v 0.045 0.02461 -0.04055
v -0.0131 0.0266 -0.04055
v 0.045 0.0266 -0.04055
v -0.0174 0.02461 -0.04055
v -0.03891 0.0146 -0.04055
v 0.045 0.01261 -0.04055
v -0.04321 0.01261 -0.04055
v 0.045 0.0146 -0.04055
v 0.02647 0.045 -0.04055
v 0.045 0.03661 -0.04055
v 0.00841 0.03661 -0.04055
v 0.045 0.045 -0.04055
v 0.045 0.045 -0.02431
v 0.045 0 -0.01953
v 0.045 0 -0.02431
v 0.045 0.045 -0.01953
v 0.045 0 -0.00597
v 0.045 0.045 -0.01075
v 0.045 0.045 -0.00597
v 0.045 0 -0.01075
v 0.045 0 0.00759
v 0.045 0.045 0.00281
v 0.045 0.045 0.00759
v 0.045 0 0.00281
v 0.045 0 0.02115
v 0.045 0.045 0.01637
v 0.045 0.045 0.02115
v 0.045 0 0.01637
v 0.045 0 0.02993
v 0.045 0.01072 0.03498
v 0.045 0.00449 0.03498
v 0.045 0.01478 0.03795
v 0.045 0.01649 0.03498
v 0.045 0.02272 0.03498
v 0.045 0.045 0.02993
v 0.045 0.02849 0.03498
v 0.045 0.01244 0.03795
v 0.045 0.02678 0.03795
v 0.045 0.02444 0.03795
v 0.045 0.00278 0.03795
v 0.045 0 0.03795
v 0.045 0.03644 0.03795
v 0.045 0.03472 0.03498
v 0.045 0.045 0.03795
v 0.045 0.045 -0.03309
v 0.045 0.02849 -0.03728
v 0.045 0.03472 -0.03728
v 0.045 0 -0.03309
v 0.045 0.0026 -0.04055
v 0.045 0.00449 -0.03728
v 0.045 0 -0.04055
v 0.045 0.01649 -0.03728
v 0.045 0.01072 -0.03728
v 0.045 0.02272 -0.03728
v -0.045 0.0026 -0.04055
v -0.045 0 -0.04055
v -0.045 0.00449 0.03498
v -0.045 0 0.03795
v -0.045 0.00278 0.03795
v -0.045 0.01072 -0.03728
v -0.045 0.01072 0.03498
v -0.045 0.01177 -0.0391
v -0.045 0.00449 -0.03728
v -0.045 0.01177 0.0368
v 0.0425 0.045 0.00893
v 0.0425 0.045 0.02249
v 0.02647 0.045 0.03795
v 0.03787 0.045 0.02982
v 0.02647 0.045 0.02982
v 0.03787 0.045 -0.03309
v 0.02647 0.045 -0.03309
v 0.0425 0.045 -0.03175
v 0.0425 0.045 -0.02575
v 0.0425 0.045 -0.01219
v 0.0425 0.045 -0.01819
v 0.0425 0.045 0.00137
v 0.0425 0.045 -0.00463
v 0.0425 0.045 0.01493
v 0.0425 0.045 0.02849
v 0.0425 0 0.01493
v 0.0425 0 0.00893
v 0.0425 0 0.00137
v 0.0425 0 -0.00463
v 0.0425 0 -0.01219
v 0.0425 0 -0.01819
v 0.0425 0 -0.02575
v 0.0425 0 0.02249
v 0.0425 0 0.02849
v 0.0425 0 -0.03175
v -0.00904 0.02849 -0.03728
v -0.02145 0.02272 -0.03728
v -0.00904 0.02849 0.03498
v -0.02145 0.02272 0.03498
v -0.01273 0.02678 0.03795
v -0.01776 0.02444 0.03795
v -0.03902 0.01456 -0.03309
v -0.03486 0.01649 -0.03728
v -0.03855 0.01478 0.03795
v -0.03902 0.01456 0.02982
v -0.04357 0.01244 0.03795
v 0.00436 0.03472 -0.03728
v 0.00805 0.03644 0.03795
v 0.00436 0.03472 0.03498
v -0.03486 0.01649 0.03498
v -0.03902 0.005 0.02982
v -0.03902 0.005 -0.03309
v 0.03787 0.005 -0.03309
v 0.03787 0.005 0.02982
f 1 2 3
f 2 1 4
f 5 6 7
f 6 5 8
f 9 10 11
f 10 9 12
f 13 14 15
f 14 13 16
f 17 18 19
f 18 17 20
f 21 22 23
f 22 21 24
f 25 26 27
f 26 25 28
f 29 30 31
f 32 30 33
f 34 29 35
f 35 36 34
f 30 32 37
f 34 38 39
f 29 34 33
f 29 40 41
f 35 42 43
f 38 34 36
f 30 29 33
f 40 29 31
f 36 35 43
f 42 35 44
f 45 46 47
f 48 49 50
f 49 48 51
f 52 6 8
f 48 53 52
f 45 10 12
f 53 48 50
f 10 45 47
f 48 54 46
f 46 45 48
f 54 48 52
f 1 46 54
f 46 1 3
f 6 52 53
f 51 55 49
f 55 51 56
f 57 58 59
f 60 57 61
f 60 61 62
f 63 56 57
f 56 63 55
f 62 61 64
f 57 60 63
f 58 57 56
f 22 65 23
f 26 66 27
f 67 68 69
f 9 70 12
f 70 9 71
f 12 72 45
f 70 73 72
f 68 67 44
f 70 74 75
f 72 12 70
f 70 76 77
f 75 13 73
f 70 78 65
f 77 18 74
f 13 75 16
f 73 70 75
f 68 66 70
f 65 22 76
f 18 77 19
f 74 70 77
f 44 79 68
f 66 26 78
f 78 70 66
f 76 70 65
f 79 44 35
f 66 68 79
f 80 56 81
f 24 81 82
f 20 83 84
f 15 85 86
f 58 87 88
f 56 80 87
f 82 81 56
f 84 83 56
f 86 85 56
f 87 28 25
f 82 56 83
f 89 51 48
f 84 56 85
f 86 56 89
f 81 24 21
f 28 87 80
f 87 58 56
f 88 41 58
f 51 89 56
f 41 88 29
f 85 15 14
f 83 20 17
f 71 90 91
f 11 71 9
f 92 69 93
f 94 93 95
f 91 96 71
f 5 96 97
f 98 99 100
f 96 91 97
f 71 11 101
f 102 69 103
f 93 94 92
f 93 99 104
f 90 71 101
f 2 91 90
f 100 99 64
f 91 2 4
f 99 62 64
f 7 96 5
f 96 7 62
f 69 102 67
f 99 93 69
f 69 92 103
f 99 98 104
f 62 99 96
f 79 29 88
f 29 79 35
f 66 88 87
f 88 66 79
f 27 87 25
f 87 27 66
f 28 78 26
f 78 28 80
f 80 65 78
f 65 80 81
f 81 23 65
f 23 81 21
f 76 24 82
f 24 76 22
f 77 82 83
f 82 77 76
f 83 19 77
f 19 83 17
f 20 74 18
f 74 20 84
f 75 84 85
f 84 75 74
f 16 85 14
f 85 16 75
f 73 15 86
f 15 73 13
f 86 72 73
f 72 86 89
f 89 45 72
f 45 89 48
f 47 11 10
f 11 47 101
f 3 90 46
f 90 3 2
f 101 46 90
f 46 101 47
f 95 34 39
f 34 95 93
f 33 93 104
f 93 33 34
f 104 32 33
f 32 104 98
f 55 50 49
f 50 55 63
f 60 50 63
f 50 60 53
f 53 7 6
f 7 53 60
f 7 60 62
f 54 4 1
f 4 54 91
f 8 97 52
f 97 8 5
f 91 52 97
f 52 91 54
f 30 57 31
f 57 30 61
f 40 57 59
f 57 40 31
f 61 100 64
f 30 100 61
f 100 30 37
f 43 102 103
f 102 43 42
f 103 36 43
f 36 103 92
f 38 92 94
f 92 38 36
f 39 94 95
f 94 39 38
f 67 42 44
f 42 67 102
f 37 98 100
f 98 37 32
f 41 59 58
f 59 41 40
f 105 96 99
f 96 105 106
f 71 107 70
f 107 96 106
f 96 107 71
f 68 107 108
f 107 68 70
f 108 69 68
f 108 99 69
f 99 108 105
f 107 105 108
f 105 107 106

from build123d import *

# Parameters (mm, degrees)
SKETCH3_W           = 0.09
SKETCH3_H           = 0.0810914
BOSS_EXTRUDE2_DEPTH = 0.045
SKETCH4_W           = 0.076885995
SKETCH4_H           = 0.062907989
CUT_EXTRUDE2_DEPTH  = 0.04
CUT_EXTRUDE3_DEPTH  = 0.085
CUT_EXTRUDE5_DEPTH  = 0.045
CUT_EXTRUDE6_DEPTH  = 0.095
SKETCH10_W          = 0.00259893
SKETCH10_H          = 0.045
CUT_EXTRUDE7_DEPTH  = 0.095


with BuildPart() as part:
    # Sketch3 → Boss-Extrude2 (new body)
    with BuildSketch(Plane(origin=(0, 0, 0), x_dir=(1, 0, 0), z_dir=(0, 1, 0))):
        Rectangle(SKETCH3_W, SKETCH3_H)
    extrude(amount=BOSS_EXTRUDE2_DEPTH)

    # Sketch4 → Cut-Extrude2 (cut)
    with BuildSketch(Plane(origin=(0, 0.045, 0), x_dir=(1, 0, 0), z_dir=(0, 1, 0))):
        with Locations((-0.000573781, 0.00163106)):
            Rectangle(SKETCH4_W, SKETCH4_H)
    extrude(amount=-CUT_EXTRUDE2_DEPTH, mode=Mode.SUBTRACT)

    # Sketch5 → Cut-Extrude3 (cut)
    with BuildSketch(Plane(origin=(0, 0, -0.0405457), x_dir=(-1, 0, 0), z_dir=(0, 0, -1))):
        Polygon((-0.026465748, 0.045), (0.045, 0.045), (0.045, 0.011774754), align=None)
    extrude(amount=-CUT_EXTRUDE3_DEPTH, mode=Mode.SUBTRACT)

    # Sketch6 → Cut-Extrude5 (cut)
    with BuildSketch(Plane(origin=(0, 0.045, 0), x_dir=(1, 0, 0), z_dir=(0, 1, 0))):
        Polygon((0.045, 0.033085055), (0.0425, 0.031749464), (0.0425, 0.025749464), (0.045, 0.024306089), align=None)
        Polygon((0.045, 0.019525055), (0.0425, 0.018189464), (0.0425, 0.012189464), (0.045, 0.010746089), align=None)
        Polygon((0.045, 0.005965055), (0.0425, 0.004629464), (0.0425, -0.001370536), (0.045, -0.002813911), align=None)
        Polygon((0.045, -0.007594945), (0.0425, -0.008930536), (0.0425, -0.014930536), (0.045, -0.016373911), align=None)
        Polygon((0.045, -0.021154945), (0.0425, -0.022490536), (0.0425, -0.028490536), (0.045, -0.029933911), align=None)
    extrude(amount=-CUT_EXTRUDE5_DEPTH, mode=Mode.SUBTRACT)

    # Sketch8 → Cut-Extrude6 (cut)
    with BuildSketch(Plane(origin=(0.045, 0, 0), x_dir=(0, 0, -1), z_dir=(1, 0, 0))):
        Polygon((0.0405457, 0.036607841), (0.0405457, 0.02660494), (0.03727938, 0.028490751), (0.03727938, 0.034722031), align=None)
        Polygon((0.03727938, 0.022722031), (0.03727938, 0.016490751), (0.0405457, 0.01460494), (0.0405457, 0.024607841), align=None)
        Polygon((0.03727938, 0.010722031), (0.03727938, 0.004490751), (0.0405457, 0.00260494), (0.0405457, 0.012607841), align=None)
        Polygon((-0.038241693, 0.012607841), (-0.034975373, 0.010722031), (-0.034975373, 0.004490751), (-0.038241693, 0.00260494), align=None)
        Polygon((-0.038241693, 0.024607841), (-0.034975373, 0.022722031), (-0.034975373, 0.016490751), (-0.038241693, 0.01460494), align=None)
        Polygon((-0.038241693, 0.036607841), (-0.034975373, 0.034722031), (-0.034975373, 0.028490751), (-0.038241693, 0.02660494), align=None)
    extrude(amount=-CUT_EXTRUDE6_DEPTH, mode=Mode.SUBTRACT)

    # Sketch10 → Cut-Extrude7 (cut)
    with BuildSketch(Plane(origin=(0.045, 0, 0), x_dir=(0, 0, -1), z_dir=(1, 0, 0))):
        with Locations((-0.039246235, 0.0225)):
            Rectangle(SKETCH10_W, SKETCH10_H)
    extrude(amount=-CUT_EXTRUDE7_DEPTH, mode=Mode.SUBTRACT)


solid = part.part
